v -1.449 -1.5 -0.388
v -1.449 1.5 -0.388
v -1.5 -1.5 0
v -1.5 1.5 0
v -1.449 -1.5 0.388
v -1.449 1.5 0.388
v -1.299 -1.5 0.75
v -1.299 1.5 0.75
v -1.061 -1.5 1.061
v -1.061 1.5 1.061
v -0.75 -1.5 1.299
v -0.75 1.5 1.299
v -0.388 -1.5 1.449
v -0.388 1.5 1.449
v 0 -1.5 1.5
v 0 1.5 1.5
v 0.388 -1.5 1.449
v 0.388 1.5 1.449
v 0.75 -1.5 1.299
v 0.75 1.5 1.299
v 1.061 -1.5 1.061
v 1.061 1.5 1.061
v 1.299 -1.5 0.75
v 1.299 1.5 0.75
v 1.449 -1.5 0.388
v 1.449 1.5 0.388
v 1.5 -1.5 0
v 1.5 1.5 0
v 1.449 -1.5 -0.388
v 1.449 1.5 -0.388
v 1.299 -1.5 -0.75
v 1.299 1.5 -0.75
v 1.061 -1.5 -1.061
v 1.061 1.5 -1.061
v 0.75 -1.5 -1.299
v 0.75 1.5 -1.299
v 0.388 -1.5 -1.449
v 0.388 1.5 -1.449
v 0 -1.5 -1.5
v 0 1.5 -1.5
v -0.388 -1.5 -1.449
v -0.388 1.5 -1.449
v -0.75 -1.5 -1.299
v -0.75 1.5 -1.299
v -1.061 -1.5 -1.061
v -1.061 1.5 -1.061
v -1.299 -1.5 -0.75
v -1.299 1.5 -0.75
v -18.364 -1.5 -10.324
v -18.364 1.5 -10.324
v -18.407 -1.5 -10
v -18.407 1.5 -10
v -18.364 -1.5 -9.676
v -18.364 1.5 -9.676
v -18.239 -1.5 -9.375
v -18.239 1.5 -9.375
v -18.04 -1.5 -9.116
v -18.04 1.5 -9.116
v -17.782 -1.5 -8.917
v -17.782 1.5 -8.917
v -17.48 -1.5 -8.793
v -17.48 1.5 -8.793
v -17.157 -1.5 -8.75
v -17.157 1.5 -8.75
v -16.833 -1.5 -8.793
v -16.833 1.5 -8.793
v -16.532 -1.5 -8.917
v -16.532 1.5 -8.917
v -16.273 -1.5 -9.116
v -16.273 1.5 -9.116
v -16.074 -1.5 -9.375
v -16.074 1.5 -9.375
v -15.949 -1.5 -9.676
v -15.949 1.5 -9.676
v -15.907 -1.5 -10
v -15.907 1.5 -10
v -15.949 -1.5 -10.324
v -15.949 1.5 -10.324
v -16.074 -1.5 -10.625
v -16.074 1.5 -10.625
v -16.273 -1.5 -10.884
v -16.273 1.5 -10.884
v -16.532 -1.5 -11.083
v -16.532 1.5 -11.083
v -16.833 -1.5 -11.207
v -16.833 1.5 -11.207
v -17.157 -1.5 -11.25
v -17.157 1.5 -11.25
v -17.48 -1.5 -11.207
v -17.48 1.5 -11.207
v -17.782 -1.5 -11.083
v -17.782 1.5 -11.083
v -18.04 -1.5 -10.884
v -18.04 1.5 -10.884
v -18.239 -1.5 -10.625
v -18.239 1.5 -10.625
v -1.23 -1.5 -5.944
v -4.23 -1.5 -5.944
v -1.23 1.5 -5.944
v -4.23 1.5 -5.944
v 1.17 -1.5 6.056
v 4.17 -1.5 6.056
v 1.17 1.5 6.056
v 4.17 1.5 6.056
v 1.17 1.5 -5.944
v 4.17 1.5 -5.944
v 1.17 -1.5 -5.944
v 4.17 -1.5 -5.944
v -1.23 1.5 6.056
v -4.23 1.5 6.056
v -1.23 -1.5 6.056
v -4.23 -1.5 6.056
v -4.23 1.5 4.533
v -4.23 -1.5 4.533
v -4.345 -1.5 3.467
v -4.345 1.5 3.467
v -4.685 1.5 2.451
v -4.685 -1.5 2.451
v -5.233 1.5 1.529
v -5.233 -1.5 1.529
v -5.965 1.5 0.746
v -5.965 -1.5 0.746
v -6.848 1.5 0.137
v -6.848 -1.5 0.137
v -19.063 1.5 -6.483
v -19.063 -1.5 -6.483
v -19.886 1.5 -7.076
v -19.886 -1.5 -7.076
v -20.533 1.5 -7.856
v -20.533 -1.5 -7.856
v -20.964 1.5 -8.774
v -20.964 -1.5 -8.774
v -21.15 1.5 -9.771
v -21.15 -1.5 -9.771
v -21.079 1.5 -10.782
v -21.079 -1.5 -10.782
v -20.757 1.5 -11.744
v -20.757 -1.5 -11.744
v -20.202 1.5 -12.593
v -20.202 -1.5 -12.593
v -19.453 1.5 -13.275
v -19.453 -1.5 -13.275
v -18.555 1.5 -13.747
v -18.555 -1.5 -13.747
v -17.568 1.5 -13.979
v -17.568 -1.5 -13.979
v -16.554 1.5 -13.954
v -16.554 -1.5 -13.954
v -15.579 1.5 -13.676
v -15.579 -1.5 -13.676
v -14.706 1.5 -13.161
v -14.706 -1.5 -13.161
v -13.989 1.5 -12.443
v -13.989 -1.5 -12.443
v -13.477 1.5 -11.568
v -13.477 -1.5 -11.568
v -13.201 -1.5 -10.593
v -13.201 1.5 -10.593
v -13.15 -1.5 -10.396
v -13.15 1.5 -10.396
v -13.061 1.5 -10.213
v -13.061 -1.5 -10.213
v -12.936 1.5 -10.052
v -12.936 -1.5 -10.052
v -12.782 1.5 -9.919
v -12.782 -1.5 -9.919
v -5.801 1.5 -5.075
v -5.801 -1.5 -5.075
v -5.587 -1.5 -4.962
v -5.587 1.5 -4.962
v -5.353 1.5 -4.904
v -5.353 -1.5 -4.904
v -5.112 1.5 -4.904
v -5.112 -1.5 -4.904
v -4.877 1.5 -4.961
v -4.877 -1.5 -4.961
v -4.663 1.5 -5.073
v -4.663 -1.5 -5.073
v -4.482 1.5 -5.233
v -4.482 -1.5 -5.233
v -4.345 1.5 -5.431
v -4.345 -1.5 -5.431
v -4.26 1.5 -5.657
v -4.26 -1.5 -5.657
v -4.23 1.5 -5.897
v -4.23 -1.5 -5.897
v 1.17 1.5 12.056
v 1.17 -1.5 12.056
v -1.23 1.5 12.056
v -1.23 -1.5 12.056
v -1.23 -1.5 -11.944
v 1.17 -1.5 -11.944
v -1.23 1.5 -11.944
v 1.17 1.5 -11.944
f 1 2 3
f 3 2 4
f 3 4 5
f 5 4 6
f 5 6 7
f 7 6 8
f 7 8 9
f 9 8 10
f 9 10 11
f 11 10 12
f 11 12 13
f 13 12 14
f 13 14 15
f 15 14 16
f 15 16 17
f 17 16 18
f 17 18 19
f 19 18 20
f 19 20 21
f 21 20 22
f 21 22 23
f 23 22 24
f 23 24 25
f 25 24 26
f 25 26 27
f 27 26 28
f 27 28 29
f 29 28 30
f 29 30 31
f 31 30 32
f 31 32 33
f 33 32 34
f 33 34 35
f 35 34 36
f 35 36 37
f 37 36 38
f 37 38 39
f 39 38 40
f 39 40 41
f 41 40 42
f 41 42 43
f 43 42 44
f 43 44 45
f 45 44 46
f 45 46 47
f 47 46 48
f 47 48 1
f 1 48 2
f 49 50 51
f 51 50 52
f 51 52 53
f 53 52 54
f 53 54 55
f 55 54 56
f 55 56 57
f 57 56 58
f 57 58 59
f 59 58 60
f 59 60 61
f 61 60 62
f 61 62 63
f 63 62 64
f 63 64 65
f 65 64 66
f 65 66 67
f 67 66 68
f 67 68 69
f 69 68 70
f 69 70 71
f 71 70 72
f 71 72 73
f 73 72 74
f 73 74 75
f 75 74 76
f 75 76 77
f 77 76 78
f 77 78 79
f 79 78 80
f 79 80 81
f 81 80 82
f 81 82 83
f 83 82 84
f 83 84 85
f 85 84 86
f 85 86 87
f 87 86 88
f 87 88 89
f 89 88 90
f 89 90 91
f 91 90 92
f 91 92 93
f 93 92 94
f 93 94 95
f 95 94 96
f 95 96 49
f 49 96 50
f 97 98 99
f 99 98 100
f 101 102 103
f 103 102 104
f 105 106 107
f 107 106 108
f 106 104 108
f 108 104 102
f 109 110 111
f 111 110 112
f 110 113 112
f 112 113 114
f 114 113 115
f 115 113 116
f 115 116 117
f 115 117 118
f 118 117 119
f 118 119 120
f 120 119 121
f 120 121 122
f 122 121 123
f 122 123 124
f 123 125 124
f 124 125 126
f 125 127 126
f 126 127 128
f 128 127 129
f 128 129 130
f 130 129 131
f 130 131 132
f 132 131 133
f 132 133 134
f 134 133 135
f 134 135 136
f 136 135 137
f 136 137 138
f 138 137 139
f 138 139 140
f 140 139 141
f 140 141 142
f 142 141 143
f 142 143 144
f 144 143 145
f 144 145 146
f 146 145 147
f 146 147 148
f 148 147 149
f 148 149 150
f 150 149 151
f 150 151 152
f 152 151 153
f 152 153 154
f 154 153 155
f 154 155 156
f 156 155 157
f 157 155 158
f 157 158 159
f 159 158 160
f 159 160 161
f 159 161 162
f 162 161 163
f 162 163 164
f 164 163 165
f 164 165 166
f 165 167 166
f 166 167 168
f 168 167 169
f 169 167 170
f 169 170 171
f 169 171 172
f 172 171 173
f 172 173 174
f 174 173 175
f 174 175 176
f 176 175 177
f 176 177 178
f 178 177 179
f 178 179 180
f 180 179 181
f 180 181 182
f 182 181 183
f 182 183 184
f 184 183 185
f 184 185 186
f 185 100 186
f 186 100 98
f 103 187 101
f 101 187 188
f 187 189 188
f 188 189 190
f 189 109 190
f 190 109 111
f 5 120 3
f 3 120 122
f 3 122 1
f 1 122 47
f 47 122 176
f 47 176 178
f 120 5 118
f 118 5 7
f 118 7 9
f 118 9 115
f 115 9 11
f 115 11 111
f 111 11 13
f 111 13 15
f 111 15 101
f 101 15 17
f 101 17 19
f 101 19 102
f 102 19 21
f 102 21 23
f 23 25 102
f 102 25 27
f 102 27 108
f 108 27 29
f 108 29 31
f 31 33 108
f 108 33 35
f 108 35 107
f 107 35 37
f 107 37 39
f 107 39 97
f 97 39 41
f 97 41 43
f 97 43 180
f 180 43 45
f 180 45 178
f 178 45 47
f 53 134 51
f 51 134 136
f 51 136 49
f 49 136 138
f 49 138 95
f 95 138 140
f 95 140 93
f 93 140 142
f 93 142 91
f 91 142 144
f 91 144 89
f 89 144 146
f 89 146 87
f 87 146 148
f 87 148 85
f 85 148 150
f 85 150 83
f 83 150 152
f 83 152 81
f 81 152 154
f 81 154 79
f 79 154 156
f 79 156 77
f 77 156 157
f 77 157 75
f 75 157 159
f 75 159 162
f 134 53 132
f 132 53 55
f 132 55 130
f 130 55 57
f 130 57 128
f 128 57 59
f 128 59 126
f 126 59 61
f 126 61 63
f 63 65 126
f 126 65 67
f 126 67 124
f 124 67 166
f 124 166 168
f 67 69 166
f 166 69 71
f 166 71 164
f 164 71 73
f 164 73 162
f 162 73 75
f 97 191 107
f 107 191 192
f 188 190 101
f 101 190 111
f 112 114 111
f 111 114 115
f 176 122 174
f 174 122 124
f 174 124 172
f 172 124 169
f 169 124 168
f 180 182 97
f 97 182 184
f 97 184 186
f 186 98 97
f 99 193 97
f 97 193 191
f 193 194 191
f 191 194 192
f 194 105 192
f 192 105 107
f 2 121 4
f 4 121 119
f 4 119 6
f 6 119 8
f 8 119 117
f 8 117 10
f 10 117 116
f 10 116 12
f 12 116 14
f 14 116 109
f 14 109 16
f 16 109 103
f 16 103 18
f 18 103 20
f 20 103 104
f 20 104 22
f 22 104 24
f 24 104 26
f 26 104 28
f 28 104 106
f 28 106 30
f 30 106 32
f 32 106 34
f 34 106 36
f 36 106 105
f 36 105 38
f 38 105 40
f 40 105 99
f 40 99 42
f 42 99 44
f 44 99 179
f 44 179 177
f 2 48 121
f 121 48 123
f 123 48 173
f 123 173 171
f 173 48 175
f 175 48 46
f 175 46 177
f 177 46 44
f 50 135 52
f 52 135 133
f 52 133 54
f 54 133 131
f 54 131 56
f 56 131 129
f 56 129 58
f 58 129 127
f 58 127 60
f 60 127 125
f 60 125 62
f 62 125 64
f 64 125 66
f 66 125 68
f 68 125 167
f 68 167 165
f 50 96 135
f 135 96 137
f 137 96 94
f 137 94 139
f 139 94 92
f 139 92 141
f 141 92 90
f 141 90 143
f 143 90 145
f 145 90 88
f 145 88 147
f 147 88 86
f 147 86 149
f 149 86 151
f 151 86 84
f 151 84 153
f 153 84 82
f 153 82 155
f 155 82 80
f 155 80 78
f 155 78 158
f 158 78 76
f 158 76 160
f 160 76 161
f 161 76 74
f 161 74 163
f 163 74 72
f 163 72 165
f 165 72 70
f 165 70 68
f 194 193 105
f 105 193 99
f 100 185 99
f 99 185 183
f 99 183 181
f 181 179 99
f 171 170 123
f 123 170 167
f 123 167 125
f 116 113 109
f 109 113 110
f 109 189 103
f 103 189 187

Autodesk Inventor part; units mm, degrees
ref_plane "YZ Plane" through (0, 0, 0) normal (1, 0, 0) x (0, 1, 0)
ref_plane "XZ Plane" through (0, 0, 0) normal (0, 1, 0) x (-1, 0, 0)
ref_plane "XY Plane" through (0, 0, 0) normal (0, 0, 1) x (1, 0, 0)
sketch "草圖1" plane through (0, 0, 0) normal (0, 1, 0) x (-1, 0, 0)
  line L0 (4.2304, -5.8965) -> (4.2304, -5.9439)
  line L1 (4.2304, -5.9439) -> (0.0304, -5.9439)
  line L2 (0.0304, -5.9439) -> (1.2304, -5.9439)
  line L3 (1.2304, -5.9439) -> (1.2304, -11.9439)
  line L4 (1.2304, -11.9439) -> (0.0304, -11.9439)
  line L5 (-4.1696, 0.0561) -> (-4.1696, -5.9439)
  line L6 (-4.1696, -5.9439) -> (0.0304, -5.9439)
  line L7 (0.0304, -5.9439) -> (-1.1696, -5.9439)
  line L8 (-1.1696, -5.9439) -> (-1.1696, -11.9439)
  line L9 (-1.1696, -11.9439) -> (0.0304, -11.9439)
  line L10 (4.2304, 4.5332) -> (4.2304, 6.0561)
  line L11 (4.2304, 6.0561) -> (0.0304, 6.0561)
  line L12 (0.0304, 6.0561) -> (1.2304, 6.0561)
  line L13 (1.2304, 6.0561) -> (1.2304, 12.0561)
  line L14 (1.2304, 12.0561) -> (0.0304, 12.0561)
  line L15 (-4.1696, 0.0561) -> (-4.1696, 6.0561)
  line L16 (-4.1696, 6.0561) -> (0.0304, 6.0561)
  line L17 (0.0304, 6.0561) -> (-1.1696, 6.0561)
  line L18 (-1.1696, 6.0561) -> (-1.1696, 12.0561)
  line L19 (-1.1696, 12.0561) -> (0.0304, 12.0561)
  circle A0 centre (0, 0) radius 1.5
  circle A1 centre (17.1565, -10) radius 1.25
  arc A2 (13.2007, -10.5927) -> (19.0627, -6.4834) centre (17.1565, -10) ccw
  line L20 (19.0627, -6.4834) -> (6.8478, 0.1374)
  line L21 (12.7818, -9.9193) -> (5.8005, -5.075)
  arc A3 (4.2304, 4.5332) -> (6.8478, 0.1374) centre (9.2304, 4.5332) ccw
  arc A4 (5.8005, -5.075) -> (4.2304, -5.8965) centre (5.2304, -5.8965) ccw
  arc A5 (13.2007, -10.5927) -> (12.7818, -9.9193) centre (12.2117, -10.7409) ccw
  point P0 (4.2304, 0.0561)
  point P1 (13.1607, -10.1822)
  dimension "d0" = 6
  dimension "d1" = 1.2
  dimension "d2" = 3
  dimension "d3" = 6
  dimension "d4" = 3
  dimension "d9" = 2.5
  dimension "d10" = 8
  dimension "d11" = 5
  dimension "d12" = 1
  dimension "d13" = 1
extrude "擠出1" add sketch "草圖1" along normal mid plane 3
properties part number "小零件3"
